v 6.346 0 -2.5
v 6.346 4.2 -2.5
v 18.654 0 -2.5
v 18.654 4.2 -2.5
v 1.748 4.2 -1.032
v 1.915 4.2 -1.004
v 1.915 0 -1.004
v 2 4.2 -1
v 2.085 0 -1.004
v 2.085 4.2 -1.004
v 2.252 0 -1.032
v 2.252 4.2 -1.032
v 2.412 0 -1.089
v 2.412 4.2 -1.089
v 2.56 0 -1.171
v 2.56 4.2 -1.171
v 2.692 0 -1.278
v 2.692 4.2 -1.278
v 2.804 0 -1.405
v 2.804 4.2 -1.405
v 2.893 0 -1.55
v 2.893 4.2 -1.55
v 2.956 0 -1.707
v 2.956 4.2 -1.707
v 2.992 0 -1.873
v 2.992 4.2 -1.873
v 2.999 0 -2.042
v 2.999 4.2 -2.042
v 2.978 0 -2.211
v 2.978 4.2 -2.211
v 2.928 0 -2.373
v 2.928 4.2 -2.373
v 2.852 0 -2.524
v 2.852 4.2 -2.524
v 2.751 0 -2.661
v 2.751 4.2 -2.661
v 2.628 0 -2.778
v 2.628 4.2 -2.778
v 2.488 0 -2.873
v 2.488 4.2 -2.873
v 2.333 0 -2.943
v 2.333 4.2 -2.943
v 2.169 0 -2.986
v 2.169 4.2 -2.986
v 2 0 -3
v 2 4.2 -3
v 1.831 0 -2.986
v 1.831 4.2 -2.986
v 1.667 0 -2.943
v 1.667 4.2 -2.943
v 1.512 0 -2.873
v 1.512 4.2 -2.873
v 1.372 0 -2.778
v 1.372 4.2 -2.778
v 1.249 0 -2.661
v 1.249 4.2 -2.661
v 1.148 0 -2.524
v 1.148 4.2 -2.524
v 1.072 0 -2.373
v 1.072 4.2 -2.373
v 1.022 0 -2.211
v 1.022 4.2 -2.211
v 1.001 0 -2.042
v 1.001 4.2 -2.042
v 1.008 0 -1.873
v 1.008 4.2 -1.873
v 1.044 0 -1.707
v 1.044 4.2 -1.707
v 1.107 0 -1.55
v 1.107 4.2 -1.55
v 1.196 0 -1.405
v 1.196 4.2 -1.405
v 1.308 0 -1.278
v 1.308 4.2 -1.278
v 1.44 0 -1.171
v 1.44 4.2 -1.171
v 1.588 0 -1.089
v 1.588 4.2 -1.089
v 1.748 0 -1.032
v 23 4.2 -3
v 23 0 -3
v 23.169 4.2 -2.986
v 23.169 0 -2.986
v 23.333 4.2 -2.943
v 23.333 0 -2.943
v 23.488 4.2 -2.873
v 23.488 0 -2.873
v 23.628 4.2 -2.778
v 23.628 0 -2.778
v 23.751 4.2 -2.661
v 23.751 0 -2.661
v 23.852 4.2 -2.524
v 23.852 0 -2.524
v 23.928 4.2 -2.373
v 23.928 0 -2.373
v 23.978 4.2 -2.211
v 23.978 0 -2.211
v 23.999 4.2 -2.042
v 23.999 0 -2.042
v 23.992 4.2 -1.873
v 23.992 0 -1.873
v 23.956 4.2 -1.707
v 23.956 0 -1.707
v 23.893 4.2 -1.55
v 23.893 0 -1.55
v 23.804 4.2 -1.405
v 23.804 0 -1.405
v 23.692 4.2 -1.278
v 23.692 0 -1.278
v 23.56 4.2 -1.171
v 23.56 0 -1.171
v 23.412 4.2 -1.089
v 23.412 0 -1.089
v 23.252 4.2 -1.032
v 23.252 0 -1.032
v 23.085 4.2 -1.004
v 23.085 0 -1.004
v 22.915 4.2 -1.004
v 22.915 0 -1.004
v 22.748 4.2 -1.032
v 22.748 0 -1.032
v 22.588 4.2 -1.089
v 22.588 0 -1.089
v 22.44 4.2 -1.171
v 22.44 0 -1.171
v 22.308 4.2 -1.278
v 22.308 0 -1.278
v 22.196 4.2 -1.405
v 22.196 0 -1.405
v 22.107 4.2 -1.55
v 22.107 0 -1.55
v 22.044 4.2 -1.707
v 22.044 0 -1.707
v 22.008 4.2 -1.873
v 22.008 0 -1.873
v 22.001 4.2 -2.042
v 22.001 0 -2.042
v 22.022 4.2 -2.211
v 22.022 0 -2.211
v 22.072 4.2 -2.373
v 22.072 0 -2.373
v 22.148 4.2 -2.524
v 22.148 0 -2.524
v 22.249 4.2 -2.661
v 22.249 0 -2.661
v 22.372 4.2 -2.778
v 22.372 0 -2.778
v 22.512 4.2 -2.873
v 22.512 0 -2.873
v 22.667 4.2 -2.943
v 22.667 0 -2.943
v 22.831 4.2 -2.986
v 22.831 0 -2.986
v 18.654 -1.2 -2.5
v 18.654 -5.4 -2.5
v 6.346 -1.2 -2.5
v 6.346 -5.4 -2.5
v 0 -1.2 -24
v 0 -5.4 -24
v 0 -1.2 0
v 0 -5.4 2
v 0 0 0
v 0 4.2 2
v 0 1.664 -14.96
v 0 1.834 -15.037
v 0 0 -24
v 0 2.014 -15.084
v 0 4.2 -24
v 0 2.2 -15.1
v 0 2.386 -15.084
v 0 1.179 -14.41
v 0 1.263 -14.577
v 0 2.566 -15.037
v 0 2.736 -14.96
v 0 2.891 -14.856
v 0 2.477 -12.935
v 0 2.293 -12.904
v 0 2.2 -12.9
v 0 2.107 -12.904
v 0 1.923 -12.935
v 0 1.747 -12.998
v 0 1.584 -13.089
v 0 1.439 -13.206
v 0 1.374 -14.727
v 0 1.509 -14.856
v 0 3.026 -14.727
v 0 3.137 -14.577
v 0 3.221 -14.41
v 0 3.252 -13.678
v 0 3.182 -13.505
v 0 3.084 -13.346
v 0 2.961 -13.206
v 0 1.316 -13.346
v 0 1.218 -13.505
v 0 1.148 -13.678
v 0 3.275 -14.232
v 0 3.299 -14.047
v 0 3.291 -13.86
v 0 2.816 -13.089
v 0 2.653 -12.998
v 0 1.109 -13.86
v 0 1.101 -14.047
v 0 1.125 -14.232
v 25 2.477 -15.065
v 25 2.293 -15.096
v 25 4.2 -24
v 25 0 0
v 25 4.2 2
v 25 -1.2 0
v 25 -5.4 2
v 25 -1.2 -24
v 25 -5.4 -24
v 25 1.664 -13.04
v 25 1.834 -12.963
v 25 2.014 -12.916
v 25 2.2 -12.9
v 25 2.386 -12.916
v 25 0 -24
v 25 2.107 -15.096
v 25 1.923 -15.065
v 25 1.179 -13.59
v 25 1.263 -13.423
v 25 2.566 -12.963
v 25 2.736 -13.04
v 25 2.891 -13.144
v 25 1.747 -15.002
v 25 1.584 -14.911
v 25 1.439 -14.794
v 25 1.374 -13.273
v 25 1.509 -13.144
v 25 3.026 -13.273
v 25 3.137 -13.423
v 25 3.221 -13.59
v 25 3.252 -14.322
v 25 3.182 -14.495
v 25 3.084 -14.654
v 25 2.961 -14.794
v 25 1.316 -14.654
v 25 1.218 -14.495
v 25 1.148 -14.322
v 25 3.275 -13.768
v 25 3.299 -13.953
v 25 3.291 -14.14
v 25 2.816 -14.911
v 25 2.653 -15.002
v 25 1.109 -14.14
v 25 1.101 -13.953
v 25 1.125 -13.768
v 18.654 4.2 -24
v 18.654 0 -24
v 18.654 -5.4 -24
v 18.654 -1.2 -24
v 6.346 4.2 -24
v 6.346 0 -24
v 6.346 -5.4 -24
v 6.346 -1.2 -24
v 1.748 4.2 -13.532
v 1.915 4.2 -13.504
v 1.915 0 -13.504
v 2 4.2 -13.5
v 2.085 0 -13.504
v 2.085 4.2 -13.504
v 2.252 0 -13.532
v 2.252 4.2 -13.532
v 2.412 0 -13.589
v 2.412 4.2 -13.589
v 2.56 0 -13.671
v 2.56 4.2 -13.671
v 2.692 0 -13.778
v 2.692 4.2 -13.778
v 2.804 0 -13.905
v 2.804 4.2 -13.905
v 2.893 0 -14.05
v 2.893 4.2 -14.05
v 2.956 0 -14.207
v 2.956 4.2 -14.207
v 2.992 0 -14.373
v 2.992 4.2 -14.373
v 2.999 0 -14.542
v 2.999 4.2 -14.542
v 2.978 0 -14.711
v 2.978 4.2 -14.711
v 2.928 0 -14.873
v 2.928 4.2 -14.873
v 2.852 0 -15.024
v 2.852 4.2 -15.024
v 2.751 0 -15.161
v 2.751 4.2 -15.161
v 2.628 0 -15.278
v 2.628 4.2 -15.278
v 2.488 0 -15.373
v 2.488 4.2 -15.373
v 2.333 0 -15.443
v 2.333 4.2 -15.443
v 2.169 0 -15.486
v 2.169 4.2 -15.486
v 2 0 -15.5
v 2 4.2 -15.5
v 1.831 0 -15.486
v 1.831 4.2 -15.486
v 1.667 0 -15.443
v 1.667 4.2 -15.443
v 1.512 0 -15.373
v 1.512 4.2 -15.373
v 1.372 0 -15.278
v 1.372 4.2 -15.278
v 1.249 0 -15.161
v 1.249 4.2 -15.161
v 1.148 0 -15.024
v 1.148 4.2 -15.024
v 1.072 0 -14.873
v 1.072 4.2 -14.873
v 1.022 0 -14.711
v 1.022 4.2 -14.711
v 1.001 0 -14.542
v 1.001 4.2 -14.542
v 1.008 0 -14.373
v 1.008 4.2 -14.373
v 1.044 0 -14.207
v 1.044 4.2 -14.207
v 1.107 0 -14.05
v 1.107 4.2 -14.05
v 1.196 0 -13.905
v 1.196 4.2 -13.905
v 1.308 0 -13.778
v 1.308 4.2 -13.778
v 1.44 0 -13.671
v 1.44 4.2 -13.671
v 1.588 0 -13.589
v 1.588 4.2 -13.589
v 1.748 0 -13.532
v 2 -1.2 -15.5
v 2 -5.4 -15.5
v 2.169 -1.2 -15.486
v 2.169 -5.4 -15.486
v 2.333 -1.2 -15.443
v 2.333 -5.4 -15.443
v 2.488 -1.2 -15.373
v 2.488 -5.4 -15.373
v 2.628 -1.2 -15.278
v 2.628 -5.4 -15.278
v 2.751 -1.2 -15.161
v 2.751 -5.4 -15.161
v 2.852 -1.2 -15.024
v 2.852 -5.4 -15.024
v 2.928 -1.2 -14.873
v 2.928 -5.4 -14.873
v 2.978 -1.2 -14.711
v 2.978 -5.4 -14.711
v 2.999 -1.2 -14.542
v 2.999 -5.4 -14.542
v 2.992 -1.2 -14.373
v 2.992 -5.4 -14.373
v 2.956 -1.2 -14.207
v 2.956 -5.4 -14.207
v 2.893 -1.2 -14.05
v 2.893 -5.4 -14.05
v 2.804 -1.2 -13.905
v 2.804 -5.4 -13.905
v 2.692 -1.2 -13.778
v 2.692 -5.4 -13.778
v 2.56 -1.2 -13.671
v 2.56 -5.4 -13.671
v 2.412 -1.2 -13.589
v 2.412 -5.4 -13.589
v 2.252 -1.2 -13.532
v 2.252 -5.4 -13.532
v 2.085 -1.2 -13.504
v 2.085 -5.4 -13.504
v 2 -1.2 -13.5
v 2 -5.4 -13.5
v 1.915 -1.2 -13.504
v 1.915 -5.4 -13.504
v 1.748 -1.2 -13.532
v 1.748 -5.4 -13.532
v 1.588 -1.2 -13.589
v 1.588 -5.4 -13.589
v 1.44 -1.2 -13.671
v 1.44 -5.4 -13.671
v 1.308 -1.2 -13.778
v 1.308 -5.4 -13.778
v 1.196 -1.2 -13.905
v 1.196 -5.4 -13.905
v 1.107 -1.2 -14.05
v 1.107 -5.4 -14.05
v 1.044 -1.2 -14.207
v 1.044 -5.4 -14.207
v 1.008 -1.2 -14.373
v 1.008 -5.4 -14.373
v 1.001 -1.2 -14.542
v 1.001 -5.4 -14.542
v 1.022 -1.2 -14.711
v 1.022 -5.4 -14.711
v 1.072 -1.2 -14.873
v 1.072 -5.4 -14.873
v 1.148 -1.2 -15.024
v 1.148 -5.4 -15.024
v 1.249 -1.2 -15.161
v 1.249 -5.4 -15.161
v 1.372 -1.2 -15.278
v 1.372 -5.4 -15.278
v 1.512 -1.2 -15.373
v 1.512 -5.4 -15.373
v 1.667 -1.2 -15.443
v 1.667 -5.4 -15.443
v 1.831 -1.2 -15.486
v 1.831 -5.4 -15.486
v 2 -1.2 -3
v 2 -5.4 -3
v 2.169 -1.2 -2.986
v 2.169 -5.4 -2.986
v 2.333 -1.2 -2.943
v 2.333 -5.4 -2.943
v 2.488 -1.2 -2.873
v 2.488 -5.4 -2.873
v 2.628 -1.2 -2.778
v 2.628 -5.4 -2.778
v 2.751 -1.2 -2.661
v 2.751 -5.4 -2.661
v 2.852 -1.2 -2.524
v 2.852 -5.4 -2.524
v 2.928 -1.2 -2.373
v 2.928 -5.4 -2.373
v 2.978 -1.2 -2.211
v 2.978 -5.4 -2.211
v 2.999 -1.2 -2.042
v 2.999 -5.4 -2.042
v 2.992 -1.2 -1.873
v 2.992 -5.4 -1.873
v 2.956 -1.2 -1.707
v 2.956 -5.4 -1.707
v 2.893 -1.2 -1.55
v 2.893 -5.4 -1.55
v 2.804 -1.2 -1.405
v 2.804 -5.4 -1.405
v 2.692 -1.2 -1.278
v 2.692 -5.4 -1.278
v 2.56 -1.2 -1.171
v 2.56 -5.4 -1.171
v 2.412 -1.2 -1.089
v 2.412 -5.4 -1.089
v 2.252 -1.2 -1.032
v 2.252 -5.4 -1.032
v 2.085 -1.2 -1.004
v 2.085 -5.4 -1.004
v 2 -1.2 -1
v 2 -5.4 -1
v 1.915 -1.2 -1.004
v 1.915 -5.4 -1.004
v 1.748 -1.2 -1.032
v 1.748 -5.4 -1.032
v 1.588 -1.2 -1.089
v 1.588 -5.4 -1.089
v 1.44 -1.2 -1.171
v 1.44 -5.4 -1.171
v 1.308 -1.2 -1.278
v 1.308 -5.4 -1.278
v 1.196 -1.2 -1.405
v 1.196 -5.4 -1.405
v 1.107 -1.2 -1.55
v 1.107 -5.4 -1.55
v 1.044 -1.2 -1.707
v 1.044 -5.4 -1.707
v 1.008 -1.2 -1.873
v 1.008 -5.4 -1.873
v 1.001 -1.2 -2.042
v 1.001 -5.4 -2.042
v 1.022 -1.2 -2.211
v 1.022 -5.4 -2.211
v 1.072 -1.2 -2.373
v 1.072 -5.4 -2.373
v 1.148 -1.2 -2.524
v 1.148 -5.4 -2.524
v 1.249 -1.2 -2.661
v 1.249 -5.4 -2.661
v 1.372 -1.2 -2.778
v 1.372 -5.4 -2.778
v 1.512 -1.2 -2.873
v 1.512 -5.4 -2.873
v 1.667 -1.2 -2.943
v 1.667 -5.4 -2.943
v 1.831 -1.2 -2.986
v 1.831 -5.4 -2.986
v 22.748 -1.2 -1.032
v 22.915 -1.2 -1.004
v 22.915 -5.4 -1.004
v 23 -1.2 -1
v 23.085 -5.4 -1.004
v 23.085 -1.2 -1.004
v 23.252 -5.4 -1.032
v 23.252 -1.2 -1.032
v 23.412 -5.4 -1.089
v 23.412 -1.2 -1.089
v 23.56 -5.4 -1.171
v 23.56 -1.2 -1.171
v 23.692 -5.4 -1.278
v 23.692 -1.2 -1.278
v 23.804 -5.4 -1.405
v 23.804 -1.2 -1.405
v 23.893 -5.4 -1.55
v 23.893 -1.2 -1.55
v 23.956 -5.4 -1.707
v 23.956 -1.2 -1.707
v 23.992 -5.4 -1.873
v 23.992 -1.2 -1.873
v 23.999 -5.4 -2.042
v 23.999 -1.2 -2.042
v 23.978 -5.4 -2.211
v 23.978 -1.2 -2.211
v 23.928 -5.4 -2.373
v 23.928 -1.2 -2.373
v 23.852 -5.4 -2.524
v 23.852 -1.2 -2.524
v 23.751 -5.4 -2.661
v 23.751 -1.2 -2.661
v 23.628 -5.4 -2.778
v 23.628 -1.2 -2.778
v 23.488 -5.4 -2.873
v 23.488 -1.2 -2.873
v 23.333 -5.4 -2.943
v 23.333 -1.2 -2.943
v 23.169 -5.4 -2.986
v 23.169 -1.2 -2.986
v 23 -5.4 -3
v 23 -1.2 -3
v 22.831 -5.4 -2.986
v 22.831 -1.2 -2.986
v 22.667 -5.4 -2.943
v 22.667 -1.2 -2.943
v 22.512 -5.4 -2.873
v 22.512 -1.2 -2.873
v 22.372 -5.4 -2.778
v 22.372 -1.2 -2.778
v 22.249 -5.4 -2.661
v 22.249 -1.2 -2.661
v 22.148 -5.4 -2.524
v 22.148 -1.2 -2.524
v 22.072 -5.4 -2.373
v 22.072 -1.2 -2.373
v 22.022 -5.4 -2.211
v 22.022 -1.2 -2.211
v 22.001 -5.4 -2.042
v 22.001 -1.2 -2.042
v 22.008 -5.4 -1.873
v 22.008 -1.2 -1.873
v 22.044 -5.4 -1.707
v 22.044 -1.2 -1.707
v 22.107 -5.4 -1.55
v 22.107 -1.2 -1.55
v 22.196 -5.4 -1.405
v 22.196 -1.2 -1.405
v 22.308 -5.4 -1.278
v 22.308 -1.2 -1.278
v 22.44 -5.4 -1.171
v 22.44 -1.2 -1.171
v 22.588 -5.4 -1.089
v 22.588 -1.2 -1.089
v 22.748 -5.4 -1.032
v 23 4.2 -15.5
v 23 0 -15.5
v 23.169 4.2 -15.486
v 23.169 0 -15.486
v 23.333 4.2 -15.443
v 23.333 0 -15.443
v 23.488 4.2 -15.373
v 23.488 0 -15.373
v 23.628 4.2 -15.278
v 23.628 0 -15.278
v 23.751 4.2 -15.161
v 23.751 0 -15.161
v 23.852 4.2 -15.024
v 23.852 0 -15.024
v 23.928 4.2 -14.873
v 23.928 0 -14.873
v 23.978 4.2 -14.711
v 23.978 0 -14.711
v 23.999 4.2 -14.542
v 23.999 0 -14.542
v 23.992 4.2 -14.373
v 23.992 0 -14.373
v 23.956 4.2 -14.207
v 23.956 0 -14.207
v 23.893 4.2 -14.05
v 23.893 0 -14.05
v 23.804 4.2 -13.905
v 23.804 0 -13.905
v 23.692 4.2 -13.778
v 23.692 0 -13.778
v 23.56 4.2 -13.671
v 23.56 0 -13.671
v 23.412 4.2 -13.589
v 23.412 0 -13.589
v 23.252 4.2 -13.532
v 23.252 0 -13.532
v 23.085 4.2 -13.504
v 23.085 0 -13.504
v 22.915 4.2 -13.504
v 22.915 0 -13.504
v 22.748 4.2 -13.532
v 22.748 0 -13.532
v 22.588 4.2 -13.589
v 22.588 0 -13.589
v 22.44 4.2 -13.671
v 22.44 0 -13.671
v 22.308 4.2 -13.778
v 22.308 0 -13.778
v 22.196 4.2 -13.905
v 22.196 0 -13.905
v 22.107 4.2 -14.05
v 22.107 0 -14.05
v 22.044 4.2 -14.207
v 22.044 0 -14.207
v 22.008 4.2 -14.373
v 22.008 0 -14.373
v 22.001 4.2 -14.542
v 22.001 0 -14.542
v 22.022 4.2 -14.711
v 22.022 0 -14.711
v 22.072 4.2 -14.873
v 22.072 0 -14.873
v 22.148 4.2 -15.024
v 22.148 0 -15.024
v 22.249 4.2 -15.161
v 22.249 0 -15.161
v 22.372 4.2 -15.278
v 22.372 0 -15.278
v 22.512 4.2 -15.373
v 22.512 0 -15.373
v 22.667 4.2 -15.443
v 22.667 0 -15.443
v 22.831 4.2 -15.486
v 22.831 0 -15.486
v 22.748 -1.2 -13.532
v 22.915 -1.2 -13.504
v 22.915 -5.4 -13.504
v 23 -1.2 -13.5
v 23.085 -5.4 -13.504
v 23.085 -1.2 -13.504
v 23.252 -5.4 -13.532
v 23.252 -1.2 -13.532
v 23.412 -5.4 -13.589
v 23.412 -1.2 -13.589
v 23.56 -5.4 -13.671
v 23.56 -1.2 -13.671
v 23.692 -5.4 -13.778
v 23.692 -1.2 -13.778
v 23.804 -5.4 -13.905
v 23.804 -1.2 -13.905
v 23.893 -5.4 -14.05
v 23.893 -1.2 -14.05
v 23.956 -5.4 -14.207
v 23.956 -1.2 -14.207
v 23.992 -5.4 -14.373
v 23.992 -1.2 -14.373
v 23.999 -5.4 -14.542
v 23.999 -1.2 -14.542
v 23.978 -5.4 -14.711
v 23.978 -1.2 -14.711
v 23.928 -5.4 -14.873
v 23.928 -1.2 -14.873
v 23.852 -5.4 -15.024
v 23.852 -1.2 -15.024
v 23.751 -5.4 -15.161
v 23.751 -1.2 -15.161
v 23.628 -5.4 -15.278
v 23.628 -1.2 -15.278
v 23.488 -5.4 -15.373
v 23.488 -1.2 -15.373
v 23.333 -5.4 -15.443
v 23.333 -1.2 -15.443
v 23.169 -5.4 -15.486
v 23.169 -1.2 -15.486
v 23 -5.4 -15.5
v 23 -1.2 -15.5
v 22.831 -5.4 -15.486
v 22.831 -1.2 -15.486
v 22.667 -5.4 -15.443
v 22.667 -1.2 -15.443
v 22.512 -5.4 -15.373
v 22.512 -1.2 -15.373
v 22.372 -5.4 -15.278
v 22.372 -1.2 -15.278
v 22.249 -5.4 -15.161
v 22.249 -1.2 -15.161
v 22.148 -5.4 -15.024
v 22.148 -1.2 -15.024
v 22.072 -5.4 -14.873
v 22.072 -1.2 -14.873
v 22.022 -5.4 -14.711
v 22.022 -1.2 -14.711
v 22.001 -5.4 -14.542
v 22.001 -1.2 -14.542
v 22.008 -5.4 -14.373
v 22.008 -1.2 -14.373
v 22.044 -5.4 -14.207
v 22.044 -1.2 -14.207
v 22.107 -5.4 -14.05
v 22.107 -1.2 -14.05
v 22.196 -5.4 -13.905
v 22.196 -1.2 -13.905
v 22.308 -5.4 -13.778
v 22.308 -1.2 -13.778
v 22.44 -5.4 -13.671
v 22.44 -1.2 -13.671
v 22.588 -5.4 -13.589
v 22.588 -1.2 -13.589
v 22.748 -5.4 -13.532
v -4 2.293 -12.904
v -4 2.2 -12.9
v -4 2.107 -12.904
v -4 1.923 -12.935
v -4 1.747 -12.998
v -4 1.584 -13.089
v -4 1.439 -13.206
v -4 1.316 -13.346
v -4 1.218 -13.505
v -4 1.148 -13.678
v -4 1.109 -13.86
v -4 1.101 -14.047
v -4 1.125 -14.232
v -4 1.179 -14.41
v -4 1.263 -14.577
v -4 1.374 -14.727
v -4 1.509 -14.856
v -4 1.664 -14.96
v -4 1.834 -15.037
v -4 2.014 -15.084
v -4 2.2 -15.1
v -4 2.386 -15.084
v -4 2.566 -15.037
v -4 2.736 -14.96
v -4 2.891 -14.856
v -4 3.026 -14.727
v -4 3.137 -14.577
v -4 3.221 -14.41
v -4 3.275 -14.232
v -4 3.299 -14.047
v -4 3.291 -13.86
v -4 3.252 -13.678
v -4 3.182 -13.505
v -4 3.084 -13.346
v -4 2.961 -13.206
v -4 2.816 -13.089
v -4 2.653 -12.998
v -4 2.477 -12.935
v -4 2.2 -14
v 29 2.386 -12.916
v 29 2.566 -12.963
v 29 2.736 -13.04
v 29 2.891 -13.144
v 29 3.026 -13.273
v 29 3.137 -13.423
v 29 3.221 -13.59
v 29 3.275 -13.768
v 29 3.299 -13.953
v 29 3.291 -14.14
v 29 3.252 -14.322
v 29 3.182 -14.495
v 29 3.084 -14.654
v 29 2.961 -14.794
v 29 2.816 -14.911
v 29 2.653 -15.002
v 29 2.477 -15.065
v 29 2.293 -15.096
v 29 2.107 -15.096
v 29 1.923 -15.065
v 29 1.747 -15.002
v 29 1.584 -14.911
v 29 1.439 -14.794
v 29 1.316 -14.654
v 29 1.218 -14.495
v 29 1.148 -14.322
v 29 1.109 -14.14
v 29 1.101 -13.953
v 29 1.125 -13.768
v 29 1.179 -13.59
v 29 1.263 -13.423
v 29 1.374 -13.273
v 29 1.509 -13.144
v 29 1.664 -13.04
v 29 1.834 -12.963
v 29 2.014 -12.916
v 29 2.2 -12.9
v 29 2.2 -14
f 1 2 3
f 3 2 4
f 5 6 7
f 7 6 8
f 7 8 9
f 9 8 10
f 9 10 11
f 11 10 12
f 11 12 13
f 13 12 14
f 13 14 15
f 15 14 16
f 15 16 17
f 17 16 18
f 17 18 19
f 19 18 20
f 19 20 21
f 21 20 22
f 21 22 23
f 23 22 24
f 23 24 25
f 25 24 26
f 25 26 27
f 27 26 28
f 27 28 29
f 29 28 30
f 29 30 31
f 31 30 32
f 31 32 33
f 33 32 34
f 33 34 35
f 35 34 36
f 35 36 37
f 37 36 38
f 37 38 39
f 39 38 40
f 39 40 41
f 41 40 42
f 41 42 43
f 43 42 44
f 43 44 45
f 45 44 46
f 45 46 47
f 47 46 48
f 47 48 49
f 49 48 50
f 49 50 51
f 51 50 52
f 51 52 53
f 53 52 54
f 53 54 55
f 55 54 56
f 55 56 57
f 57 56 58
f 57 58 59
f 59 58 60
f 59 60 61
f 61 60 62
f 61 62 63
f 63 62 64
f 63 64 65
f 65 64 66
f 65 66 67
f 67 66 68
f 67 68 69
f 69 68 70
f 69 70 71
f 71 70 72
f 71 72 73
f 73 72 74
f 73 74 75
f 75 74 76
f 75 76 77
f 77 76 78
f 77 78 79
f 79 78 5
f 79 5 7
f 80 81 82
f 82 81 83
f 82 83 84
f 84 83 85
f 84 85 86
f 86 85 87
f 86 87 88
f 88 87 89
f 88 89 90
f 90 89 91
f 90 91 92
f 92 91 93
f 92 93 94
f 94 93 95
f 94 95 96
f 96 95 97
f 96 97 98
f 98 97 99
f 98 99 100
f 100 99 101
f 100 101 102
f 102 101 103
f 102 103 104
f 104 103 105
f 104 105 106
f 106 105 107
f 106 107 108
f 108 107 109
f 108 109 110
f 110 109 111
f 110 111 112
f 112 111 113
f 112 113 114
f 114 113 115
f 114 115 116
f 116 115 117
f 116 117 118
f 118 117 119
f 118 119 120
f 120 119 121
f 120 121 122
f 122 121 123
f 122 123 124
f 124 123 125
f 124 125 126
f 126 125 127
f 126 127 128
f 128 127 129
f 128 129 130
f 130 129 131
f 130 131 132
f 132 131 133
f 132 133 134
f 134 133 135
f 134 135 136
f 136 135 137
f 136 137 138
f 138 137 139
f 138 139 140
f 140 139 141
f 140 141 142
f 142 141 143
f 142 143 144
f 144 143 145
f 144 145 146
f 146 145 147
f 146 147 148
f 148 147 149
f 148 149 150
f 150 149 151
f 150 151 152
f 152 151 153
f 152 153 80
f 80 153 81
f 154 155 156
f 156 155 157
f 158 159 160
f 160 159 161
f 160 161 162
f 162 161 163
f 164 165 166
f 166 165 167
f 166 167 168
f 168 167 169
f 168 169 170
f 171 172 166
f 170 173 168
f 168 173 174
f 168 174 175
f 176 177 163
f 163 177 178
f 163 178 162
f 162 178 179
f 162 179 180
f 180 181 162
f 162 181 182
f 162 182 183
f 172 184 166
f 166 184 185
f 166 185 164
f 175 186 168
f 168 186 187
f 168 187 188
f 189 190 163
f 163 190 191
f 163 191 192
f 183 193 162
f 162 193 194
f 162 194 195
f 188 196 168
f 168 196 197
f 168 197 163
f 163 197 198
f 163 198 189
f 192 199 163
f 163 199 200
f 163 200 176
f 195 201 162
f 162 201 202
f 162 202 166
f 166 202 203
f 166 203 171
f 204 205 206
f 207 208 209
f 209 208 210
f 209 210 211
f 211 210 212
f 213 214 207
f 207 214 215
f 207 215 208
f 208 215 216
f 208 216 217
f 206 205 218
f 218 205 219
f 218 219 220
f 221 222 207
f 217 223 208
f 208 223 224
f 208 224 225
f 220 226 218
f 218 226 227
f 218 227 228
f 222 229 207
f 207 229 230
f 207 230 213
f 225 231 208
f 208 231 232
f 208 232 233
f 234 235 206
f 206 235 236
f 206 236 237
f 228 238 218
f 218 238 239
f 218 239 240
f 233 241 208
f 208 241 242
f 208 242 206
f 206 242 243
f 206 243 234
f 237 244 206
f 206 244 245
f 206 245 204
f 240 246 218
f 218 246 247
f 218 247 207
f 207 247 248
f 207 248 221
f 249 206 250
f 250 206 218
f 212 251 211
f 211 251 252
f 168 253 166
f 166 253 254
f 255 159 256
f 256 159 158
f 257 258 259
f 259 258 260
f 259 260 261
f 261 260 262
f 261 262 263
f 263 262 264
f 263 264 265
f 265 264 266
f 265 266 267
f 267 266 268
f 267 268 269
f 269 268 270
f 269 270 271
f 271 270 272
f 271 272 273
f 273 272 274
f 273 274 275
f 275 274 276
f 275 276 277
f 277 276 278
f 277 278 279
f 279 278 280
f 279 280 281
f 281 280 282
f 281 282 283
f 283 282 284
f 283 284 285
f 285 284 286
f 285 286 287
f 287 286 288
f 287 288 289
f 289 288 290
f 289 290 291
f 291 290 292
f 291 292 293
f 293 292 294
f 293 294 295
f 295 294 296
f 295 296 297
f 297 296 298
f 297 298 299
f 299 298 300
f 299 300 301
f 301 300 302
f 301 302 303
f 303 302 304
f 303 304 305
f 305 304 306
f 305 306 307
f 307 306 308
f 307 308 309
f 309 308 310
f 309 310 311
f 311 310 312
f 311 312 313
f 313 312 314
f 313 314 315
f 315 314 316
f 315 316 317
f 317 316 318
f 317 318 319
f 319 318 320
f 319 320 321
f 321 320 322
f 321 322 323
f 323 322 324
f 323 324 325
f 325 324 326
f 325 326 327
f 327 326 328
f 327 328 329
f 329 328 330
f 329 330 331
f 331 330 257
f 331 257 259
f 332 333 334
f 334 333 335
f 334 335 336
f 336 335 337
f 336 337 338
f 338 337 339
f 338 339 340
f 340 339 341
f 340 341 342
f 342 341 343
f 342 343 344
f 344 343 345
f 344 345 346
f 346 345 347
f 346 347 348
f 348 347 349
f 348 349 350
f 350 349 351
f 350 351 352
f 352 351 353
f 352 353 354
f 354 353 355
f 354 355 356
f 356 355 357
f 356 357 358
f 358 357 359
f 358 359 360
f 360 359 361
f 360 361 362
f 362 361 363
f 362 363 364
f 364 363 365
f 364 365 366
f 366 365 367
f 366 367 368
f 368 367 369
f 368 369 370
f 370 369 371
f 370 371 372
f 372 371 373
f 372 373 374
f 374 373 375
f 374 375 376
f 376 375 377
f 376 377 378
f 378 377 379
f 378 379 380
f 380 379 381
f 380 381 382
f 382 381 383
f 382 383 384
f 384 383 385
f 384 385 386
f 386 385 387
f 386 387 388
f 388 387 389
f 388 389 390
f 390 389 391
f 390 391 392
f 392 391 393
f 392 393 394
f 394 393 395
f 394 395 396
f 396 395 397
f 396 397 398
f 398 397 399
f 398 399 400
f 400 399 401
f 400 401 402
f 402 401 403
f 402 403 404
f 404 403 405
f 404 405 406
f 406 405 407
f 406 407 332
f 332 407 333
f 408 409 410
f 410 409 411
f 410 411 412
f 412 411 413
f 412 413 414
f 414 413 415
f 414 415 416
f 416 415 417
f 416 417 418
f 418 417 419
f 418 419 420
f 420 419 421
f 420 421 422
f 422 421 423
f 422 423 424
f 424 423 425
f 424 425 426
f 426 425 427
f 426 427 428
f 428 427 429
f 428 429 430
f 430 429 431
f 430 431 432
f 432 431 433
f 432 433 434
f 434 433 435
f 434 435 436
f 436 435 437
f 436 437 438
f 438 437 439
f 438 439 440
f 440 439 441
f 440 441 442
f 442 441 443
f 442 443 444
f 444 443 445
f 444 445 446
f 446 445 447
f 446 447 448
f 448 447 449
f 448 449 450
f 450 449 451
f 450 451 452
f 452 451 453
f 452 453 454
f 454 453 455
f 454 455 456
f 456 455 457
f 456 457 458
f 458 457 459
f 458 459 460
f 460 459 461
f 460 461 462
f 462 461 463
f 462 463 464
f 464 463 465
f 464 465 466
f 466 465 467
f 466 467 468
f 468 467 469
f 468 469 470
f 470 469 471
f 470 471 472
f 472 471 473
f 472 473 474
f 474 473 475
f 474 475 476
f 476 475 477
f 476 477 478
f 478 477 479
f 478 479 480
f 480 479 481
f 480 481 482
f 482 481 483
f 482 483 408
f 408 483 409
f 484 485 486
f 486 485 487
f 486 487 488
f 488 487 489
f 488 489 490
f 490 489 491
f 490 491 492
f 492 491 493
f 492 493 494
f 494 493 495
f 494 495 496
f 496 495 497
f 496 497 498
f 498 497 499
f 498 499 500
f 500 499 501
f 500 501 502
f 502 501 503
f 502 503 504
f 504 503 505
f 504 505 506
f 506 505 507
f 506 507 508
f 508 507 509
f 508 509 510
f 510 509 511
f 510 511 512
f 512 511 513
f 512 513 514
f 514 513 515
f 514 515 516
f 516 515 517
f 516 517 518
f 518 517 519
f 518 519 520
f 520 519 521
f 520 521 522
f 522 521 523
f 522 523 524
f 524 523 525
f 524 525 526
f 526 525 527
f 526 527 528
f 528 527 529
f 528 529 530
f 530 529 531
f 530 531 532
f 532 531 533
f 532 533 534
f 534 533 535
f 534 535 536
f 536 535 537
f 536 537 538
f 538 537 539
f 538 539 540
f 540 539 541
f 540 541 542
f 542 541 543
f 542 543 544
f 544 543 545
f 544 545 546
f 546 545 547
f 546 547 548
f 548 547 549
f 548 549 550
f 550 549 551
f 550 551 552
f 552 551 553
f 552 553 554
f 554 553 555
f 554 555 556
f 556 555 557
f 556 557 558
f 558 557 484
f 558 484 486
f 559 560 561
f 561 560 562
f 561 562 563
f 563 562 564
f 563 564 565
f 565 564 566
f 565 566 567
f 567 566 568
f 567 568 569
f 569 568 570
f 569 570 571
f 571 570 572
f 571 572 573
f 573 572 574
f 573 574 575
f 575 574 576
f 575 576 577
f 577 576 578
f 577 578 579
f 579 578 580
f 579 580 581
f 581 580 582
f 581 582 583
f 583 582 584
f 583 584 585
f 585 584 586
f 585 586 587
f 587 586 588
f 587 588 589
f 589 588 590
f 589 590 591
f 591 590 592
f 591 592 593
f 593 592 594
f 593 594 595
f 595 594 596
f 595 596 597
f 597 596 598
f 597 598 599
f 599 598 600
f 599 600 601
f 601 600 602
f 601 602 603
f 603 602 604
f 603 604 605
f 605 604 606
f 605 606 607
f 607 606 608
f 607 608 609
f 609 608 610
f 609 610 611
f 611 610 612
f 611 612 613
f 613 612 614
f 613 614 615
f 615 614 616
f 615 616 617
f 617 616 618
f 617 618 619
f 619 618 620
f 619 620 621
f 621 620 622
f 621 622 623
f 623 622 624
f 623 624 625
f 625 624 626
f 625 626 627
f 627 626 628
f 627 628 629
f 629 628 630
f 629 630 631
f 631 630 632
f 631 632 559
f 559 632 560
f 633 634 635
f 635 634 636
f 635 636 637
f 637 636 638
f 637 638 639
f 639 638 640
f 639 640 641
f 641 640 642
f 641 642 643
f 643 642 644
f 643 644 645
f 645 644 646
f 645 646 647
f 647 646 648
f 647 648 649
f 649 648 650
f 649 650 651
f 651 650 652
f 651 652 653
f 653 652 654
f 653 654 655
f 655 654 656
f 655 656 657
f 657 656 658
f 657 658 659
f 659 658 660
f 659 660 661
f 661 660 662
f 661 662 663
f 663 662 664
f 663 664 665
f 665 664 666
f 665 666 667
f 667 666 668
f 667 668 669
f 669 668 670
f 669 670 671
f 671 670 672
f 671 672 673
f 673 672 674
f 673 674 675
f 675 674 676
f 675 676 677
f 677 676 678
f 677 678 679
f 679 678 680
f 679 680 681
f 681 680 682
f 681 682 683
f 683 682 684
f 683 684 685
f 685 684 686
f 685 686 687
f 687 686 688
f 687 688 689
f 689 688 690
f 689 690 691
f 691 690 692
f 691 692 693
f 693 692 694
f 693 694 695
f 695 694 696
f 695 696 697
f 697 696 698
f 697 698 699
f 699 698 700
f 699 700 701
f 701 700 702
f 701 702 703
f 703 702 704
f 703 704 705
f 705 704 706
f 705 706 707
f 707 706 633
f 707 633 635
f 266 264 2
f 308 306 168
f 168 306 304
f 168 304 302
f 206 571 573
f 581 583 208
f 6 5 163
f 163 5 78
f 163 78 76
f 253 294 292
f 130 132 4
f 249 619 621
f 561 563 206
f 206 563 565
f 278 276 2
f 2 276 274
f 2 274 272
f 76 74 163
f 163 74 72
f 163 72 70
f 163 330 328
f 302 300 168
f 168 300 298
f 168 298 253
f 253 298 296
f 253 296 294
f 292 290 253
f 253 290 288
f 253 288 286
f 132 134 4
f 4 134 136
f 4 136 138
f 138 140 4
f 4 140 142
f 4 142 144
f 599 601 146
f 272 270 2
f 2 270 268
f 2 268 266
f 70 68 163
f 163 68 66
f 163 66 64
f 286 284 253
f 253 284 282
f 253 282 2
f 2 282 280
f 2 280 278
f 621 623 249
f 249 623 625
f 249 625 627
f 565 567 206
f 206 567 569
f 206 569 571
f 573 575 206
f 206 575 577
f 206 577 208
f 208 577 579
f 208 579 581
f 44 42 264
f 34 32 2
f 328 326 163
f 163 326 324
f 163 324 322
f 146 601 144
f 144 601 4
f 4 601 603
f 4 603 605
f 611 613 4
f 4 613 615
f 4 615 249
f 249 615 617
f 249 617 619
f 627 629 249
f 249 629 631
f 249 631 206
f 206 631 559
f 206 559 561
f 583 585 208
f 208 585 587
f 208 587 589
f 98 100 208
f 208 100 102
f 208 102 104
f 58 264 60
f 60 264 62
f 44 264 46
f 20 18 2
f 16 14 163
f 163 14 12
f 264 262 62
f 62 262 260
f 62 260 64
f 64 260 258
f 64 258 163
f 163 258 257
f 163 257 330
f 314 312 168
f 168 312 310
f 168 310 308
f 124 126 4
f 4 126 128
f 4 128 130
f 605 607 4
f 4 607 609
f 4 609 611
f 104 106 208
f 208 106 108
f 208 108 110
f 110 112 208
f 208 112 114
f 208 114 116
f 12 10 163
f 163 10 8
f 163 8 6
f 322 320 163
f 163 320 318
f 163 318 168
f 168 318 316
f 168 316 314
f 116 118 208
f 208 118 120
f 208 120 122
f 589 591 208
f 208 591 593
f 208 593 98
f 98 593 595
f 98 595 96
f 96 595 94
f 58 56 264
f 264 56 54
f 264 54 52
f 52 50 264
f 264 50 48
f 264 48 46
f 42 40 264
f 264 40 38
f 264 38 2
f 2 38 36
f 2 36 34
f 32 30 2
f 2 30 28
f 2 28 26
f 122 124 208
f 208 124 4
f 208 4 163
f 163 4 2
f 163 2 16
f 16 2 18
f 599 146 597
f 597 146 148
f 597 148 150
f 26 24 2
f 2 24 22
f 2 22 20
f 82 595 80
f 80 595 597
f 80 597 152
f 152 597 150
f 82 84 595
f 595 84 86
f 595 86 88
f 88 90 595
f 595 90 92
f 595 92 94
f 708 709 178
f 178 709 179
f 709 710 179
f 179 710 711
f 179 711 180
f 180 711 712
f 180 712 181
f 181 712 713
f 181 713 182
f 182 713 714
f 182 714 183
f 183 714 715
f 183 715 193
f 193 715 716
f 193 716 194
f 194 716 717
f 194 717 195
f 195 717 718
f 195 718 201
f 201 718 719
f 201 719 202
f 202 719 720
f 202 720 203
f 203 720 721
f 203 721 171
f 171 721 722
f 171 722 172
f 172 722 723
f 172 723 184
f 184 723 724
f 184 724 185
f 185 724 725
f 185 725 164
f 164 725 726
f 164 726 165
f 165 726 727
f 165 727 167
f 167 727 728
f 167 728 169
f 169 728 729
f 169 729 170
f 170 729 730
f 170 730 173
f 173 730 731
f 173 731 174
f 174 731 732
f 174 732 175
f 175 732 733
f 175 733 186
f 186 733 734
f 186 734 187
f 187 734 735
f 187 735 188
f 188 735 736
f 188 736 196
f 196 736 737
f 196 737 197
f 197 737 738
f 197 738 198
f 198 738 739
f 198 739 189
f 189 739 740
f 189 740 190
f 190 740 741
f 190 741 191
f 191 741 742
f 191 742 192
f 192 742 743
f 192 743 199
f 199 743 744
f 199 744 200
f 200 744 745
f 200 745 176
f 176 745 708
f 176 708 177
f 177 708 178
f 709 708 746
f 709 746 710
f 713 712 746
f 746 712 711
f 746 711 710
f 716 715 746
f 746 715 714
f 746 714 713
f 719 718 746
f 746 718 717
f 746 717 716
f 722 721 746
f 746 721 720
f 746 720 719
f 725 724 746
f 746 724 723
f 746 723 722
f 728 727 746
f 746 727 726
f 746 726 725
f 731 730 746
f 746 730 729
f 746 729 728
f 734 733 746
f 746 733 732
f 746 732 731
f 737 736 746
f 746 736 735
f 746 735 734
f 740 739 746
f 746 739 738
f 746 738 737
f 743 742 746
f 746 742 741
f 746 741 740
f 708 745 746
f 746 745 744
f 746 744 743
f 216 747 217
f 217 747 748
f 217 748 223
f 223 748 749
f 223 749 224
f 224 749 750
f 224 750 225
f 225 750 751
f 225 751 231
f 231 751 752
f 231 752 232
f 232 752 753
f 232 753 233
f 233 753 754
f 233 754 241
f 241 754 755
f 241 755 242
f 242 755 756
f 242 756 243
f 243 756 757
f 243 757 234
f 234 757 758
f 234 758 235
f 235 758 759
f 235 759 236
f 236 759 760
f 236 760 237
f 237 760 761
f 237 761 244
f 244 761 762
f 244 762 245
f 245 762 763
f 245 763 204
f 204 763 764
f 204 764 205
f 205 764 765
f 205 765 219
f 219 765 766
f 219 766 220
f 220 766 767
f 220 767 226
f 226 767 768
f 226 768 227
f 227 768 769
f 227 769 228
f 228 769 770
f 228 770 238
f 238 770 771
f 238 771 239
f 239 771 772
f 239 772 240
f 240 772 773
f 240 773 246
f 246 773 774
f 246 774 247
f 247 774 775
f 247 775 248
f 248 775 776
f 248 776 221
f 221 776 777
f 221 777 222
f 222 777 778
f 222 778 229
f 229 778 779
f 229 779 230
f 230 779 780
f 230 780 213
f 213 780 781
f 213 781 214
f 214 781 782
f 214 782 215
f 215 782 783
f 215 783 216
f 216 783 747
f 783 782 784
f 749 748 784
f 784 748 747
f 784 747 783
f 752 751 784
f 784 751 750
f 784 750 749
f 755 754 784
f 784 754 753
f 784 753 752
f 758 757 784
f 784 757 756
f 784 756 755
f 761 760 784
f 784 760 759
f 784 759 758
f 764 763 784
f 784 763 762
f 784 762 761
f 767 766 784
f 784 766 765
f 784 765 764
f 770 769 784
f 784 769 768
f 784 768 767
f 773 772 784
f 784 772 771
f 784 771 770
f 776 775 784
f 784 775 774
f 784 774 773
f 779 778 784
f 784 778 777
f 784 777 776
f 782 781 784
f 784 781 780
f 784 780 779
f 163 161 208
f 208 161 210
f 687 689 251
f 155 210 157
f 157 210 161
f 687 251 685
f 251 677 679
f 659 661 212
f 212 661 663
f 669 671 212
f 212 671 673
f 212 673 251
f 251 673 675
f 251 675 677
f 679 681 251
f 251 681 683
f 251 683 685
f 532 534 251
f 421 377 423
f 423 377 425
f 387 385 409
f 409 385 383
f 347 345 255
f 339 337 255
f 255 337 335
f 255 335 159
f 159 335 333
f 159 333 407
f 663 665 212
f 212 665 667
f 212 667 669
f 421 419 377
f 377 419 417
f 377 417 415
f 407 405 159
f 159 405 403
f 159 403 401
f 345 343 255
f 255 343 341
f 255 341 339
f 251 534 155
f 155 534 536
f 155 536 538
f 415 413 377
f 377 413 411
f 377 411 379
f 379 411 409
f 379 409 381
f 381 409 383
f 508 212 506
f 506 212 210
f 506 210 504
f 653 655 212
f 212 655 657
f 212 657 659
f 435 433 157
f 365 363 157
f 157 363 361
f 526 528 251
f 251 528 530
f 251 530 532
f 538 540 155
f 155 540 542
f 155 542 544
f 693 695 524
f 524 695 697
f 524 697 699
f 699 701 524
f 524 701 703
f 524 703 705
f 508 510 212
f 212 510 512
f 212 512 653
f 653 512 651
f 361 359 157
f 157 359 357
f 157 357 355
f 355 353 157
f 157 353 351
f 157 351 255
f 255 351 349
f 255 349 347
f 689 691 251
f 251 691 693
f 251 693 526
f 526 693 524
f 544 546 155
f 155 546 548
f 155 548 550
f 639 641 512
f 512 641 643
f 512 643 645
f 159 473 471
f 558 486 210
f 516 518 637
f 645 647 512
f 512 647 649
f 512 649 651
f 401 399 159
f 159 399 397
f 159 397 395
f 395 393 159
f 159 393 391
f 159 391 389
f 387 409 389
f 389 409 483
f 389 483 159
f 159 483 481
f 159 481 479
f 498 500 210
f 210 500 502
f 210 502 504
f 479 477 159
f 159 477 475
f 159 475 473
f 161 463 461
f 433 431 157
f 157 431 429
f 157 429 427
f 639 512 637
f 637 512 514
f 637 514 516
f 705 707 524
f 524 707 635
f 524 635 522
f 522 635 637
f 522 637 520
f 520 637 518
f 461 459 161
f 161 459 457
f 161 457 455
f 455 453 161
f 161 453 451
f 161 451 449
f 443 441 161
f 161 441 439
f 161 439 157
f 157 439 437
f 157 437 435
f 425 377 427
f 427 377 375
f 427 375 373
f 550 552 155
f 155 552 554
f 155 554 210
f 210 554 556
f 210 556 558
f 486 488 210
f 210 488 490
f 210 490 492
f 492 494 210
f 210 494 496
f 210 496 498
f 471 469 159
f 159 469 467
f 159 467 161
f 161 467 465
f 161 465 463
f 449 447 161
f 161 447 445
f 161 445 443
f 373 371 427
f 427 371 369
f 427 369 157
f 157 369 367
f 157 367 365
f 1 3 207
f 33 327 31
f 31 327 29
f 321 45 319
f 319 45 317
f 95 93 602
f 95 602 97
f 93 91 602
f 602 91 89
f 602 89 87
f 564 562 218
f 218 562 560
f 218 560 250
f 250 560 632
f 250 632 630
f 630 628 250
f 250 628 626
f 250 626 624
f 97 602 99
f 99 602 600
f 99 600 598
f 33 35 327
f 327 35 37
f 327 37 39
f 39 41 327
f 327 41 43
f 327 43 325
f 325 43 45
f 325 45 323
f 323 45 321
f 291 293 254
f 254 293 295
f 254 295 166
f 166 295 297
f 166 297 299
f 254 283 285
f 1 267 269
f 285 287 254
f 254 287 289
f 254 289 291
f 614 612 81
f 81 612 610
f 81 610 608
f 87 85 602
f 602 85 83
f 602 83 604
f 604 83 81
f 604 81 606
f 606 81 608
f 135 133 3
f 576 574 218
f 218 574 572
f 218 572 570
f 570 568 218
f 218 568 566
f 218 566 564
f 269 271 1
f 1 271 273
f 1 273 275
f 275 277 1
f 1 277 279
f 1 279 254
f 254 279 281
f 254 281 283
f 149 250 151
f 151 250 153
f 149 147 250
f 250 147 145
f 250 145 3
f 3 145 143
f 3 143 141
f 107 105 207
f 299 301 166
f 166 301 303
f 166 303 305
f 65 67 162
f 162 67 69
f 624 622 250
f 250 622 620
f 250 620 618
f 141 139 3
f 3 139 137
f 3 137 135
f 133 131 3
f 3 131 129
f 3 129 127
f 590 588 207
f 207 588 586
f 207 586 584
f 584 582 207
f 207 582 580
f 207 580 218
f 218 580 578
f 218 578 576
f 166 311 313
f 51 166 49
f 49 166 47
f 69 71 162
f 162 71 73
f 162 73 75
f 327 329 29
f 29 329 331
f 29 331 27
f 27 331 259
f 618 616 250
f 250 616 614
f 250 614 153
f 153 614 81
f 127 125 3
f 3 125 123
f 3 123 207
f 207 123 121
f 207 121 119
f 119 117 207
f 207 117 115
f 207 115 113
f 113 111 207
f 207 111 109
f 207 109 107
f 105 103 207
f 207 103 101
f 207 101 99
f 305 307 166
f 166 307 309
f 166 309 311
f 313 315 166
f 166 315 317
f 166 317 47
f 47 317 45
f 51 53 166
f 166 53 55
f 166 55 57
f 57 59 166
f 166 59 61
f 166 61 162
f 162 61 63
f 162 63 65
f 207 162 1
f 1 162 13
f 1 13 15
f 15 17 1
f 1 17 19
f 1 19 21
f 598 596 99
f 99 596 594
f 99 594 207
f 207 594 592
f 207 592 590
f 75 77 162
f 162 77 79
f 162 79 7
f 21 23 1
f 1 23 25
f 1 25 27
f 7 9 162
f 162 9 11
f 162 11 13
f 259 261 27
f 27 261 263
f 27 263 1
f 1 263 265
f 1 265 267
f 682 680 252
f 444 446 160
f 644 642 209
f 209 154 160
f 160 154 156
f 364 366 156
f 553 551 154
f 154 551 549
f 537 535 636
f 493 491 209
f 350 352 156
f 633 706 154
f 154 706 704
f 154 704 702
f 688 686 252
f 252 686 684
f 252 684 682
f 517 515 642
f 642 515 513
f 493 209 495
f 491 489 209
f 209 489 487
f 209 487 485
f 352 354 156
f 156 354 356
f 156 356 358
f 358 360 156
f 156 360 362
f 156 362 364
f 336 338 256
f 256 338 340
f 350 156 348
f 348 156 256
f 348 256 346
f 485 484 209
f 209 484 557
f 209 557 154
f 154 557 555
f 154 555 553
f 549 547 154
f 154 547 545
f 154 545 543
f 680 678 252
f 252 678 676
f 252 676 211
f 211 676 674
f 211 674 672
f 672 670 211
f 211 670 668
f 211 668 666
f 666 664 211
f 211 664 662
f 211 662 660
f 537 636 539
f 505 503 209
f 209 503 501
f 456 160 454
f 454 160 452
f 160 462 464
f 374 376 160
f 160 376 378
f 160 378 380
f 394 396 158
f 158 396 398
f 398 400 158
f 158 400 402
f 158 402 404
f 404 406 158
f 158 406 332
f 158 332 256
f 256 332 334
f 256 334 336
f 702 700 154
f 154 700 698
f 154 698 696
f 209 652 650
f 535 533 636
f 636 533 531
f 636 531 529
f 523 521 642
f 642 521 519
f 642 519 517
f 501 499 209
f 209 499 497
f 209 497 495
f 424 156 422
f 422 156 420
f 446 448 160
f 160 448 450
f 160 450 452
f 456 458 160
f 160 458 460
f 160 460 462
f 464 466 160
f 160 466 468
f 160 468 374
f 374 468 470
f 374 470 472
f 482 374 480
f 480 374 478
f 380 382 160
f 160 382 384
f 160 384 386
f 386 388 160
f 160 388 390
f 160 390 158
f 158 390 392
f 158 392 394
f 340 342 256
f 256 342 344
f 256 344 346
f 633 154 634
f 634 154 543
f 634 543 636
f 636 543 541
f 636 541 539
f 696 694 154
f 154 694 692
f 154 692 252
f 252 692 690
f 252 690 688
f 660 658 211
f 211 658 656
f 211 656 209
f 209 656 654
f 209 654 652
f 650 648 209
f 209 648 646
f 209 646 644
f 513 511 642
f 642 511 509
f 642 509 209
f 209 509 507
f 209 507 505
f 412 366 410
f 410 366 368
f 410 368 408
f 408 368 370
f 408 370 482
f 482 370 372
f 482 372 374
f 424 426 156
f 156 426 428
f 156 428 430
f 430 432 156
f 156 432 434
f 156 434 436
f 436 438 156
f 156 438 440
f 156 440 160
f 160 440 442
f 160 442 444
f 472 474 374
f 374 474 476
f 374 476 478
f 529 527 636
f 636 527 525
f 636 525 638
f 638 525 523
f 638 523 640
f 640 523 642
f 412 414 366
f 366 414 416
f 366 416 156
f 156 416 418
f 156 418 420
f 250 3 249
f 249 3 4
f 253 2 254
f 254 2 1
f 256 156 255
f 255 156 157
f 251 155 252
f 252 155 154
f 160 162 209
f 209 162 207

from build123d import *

# Parameters (mm, degrees)
SKETCH1_R           = 1
BOSS_EXTRUDE1_DEPTH = 4.2
SKETCH2_R           = 1.1
BOSS_EXTRUDE2_DEPTH = 4
SKETCH3_W           = 25
SKETCH3_H           = 4.2
BOSS_EXTRUDE3_DEPTH = 2
SKETCH4_W           = 25
SKETCH4_H           = 2
BOSS_EXTRUDE4_DEPTH = 0.6
BOSS_EXTRUDE5_START = -5.4
SKETCH1_3_R         = 1
BOSS_EXTRUDE5_DEPTH = 5.4
SKETCH4_2_W         = 25
SKETCH4_2_H         = 2
BOSS_EXTRUDE6_DEPTH = 5.4
CUT_EXTRUDE2_REACH  = 38.502
SKETCH5_W           = 25
SKETCH5_H           = 1.2
SKETCH6_W           = 2.096367106
SKETCH6_H           = 4.2
BOSS_EXTRUDE8_DEPTH = 21.5
SKETCH5_2_W         = 25
SKETCH5_2_H         = 1.2
CUT_EXTRUDE4_DEPTH  = 2.5


with BuildPart() as part:
    # Sketch1 → Boss-Extrude1 (new body)
    with BuildSketch(Plane(origin=(0, 0, 0), x_dir=(1, 0, 0), z_dir=(0, 1, 0))):
        Polygon((0, 0), (25, 0), (25, 24), (20.75, 24), (20.75, 2.5), (4.25, 2.5), (4.25, 24), (0, 24), align=None)
        with Locations(Location((2, 14.5, 0), (0, 0, 270))):
            Circle(SKETCH1_R, mode=Mode.SUBTRACT)
        with Locations(Location((2, 2, 0), (0, 0, 270))):
            Circle(SKETCH1_R, mode=Mode.SUBTRACT)
        with Locations(Location((23, 2, 0), (0, 0, 90))):
            Circle(SKETCH1_R, mode=Mode.SUBTRACT)
        with Locations(Location((23, 14.5, 0), (0, 0, 90))):
            Circle(SKETCH1_R, mode=Mode.SUBTRACT)
    extrude(amount=BOSS_EXTRUDE1_DEPTH)

    # Sketch2 → Boss-Extrude2 (add)
    with BuildSketch(Plane.ZY):
        with Locations((-14, 2.2)):
            Circle(SKETCH2_R)
    boss_extrude2 = extrude(amount=BOSS_EXTRUDE2_DEPTH)

    # Mirror1: Boss-Extrude2 across plane
    add(boss_extrude2.mirror(Plane.ZY.offset(-12.5)))

    # Sketch3 → Boss-Extrude3 (add)
    with BuildSketch(Plane.XY):
        with Locations((12.5, 2.1)):
            Rectangle(SKETCH3_W, SKETCH3_H)
    extrude(amount=BOSS_EXTRUDE3_DEPTH)

    # Sketch4 → Boss-Extrude4 (add)
    with BuildSketch(Plane.XZ):
        with Locations((12.5, 1)):
            Rectangle(SKETCH4_W, SKETCH4_H)
    extrude(amount=BOSS_EXTRUDE4_DEPTH)

    # Sketch1<3> → Boss-Extrude5 (add)
    with BuildSketch(Plane(origin=(0, 0, 0), x_dir=(1, 0, 0), z_dir=(0, 1, 0)).offset(BOSS_EXTRUDE5_START)):
        Polygon((0, 0), (25, 0), (25, 24), (20.75, 24), (20.75, 2.5), (4.25, 2.5), (4.25, 24), (0, 24), align=None)
        with Locations(Location((2, 14.5, 0), (0, 0, 270))):
            Circle(SKETCH1_3_R, mode=Mode.SUBTRACT)
        with Locations(Location((2, 2, 0), (0, 0, 270))):
            Circle(SKETCH1_3_R, mode=Mode.SUBTRACT)
        with Locations(Location((23, 2, 0), (0, 0, 90))):
            Circle(SKETCH1_3_R, mode=Mode.SUBTRACT)
        with Locations(Location((23, 14.5, 0), (0, 0, 90))):
            Circle(SKETCH1_3_R, mode=Mode.SUBTRACT)
    extrude(amount=BOSS_EXTRUDE5_DEPTH)

    # Sketch4<2> → Boss-Extrude6 (add)
    with BuildSketch(Plane.XZ):
        with Locations((12.5, 1)):
            Rectangle(SKETCH4_2_W, SKETCH4_2_H)
    extrude(amount=BOSS_EXTRUDE6_DEPTH)

    # Cut-Extrude2: up to this face of the body (flat: up to its plane)
    cut_extrude2_end = Plane(part.part.faces().sort_by_distance((22.875, -0.6, -24))[0])
    # Sketch5 → Cut-Extrude2 (cut, up to the picked face)
    with BuildSketch(Plane(origin=(0, 0, -2.5), x_dir=(-1, 0, 0), z_dir=(0, 0, -1)), mode=Mode.PRIVATE) as cut_extrude2_sk1:
        with Locations((-12.5, -0.6)):
            Rectangle(SKETCH5_W, SKETCH5_H)
    cut_extrude2_tool1 = split(extrude(cut_extrude2_sk1.sketch, amount=CUT_EXTRUDE2_REACH, mode=Mode.PRIVATE), bisect_by=cut_extrude2_end, keep=Keep.BOTH, mode=Mode.PRIVATE)
    add(cut_extrude2_tool1.solids().sort_by(Axis((12.5, -0.6, -2.5), (0, 0, -1)))[0], mode=Mode.SUBTRACT)

    # Sketch6 → Boss-Extrude8 (add)
    with BuildSketch(Plane(origin=(0, 0, -2.5), x_dir=(-1, 0, 0), z_dir=(0, 0, -1))):
        with Locations((-19.701816447, 2.1)):
            Rectangle(SKETCH6_W, SKETCH6_H)
        with Locations((-5.298183553, 2.1)):
            Rectangle(SKETCH6_W, SKETCH6_H)
        with Locations((-5.298183553, -3.3)):
            Rectangle(SKETCH6_W, SKETCH6_H)
        with Locations((-19.701816447, -3.3)):
            Rectangle(SKETCH6_W, SKETCH6_H)
    extrude(amount=BOSS_EXTRUDE8_DEPTH)

    # Sketch5<2> → Cut-Extrude4 (cut)
    with BuildSketch(Plane(origin=(0, 0, -2.5), x_dir=(-1, 0, 0), z_dir=(0, 0, -1))):
        with Locations((-12.5, -0.6)):
            Rectangle(SKETCH5_2_W, SKETCH5_2_H)
    extrude(amount=-CUT_EXTRUDE4_DEPTH, mode=Mode.SUBTRACT)


solid = part.part
